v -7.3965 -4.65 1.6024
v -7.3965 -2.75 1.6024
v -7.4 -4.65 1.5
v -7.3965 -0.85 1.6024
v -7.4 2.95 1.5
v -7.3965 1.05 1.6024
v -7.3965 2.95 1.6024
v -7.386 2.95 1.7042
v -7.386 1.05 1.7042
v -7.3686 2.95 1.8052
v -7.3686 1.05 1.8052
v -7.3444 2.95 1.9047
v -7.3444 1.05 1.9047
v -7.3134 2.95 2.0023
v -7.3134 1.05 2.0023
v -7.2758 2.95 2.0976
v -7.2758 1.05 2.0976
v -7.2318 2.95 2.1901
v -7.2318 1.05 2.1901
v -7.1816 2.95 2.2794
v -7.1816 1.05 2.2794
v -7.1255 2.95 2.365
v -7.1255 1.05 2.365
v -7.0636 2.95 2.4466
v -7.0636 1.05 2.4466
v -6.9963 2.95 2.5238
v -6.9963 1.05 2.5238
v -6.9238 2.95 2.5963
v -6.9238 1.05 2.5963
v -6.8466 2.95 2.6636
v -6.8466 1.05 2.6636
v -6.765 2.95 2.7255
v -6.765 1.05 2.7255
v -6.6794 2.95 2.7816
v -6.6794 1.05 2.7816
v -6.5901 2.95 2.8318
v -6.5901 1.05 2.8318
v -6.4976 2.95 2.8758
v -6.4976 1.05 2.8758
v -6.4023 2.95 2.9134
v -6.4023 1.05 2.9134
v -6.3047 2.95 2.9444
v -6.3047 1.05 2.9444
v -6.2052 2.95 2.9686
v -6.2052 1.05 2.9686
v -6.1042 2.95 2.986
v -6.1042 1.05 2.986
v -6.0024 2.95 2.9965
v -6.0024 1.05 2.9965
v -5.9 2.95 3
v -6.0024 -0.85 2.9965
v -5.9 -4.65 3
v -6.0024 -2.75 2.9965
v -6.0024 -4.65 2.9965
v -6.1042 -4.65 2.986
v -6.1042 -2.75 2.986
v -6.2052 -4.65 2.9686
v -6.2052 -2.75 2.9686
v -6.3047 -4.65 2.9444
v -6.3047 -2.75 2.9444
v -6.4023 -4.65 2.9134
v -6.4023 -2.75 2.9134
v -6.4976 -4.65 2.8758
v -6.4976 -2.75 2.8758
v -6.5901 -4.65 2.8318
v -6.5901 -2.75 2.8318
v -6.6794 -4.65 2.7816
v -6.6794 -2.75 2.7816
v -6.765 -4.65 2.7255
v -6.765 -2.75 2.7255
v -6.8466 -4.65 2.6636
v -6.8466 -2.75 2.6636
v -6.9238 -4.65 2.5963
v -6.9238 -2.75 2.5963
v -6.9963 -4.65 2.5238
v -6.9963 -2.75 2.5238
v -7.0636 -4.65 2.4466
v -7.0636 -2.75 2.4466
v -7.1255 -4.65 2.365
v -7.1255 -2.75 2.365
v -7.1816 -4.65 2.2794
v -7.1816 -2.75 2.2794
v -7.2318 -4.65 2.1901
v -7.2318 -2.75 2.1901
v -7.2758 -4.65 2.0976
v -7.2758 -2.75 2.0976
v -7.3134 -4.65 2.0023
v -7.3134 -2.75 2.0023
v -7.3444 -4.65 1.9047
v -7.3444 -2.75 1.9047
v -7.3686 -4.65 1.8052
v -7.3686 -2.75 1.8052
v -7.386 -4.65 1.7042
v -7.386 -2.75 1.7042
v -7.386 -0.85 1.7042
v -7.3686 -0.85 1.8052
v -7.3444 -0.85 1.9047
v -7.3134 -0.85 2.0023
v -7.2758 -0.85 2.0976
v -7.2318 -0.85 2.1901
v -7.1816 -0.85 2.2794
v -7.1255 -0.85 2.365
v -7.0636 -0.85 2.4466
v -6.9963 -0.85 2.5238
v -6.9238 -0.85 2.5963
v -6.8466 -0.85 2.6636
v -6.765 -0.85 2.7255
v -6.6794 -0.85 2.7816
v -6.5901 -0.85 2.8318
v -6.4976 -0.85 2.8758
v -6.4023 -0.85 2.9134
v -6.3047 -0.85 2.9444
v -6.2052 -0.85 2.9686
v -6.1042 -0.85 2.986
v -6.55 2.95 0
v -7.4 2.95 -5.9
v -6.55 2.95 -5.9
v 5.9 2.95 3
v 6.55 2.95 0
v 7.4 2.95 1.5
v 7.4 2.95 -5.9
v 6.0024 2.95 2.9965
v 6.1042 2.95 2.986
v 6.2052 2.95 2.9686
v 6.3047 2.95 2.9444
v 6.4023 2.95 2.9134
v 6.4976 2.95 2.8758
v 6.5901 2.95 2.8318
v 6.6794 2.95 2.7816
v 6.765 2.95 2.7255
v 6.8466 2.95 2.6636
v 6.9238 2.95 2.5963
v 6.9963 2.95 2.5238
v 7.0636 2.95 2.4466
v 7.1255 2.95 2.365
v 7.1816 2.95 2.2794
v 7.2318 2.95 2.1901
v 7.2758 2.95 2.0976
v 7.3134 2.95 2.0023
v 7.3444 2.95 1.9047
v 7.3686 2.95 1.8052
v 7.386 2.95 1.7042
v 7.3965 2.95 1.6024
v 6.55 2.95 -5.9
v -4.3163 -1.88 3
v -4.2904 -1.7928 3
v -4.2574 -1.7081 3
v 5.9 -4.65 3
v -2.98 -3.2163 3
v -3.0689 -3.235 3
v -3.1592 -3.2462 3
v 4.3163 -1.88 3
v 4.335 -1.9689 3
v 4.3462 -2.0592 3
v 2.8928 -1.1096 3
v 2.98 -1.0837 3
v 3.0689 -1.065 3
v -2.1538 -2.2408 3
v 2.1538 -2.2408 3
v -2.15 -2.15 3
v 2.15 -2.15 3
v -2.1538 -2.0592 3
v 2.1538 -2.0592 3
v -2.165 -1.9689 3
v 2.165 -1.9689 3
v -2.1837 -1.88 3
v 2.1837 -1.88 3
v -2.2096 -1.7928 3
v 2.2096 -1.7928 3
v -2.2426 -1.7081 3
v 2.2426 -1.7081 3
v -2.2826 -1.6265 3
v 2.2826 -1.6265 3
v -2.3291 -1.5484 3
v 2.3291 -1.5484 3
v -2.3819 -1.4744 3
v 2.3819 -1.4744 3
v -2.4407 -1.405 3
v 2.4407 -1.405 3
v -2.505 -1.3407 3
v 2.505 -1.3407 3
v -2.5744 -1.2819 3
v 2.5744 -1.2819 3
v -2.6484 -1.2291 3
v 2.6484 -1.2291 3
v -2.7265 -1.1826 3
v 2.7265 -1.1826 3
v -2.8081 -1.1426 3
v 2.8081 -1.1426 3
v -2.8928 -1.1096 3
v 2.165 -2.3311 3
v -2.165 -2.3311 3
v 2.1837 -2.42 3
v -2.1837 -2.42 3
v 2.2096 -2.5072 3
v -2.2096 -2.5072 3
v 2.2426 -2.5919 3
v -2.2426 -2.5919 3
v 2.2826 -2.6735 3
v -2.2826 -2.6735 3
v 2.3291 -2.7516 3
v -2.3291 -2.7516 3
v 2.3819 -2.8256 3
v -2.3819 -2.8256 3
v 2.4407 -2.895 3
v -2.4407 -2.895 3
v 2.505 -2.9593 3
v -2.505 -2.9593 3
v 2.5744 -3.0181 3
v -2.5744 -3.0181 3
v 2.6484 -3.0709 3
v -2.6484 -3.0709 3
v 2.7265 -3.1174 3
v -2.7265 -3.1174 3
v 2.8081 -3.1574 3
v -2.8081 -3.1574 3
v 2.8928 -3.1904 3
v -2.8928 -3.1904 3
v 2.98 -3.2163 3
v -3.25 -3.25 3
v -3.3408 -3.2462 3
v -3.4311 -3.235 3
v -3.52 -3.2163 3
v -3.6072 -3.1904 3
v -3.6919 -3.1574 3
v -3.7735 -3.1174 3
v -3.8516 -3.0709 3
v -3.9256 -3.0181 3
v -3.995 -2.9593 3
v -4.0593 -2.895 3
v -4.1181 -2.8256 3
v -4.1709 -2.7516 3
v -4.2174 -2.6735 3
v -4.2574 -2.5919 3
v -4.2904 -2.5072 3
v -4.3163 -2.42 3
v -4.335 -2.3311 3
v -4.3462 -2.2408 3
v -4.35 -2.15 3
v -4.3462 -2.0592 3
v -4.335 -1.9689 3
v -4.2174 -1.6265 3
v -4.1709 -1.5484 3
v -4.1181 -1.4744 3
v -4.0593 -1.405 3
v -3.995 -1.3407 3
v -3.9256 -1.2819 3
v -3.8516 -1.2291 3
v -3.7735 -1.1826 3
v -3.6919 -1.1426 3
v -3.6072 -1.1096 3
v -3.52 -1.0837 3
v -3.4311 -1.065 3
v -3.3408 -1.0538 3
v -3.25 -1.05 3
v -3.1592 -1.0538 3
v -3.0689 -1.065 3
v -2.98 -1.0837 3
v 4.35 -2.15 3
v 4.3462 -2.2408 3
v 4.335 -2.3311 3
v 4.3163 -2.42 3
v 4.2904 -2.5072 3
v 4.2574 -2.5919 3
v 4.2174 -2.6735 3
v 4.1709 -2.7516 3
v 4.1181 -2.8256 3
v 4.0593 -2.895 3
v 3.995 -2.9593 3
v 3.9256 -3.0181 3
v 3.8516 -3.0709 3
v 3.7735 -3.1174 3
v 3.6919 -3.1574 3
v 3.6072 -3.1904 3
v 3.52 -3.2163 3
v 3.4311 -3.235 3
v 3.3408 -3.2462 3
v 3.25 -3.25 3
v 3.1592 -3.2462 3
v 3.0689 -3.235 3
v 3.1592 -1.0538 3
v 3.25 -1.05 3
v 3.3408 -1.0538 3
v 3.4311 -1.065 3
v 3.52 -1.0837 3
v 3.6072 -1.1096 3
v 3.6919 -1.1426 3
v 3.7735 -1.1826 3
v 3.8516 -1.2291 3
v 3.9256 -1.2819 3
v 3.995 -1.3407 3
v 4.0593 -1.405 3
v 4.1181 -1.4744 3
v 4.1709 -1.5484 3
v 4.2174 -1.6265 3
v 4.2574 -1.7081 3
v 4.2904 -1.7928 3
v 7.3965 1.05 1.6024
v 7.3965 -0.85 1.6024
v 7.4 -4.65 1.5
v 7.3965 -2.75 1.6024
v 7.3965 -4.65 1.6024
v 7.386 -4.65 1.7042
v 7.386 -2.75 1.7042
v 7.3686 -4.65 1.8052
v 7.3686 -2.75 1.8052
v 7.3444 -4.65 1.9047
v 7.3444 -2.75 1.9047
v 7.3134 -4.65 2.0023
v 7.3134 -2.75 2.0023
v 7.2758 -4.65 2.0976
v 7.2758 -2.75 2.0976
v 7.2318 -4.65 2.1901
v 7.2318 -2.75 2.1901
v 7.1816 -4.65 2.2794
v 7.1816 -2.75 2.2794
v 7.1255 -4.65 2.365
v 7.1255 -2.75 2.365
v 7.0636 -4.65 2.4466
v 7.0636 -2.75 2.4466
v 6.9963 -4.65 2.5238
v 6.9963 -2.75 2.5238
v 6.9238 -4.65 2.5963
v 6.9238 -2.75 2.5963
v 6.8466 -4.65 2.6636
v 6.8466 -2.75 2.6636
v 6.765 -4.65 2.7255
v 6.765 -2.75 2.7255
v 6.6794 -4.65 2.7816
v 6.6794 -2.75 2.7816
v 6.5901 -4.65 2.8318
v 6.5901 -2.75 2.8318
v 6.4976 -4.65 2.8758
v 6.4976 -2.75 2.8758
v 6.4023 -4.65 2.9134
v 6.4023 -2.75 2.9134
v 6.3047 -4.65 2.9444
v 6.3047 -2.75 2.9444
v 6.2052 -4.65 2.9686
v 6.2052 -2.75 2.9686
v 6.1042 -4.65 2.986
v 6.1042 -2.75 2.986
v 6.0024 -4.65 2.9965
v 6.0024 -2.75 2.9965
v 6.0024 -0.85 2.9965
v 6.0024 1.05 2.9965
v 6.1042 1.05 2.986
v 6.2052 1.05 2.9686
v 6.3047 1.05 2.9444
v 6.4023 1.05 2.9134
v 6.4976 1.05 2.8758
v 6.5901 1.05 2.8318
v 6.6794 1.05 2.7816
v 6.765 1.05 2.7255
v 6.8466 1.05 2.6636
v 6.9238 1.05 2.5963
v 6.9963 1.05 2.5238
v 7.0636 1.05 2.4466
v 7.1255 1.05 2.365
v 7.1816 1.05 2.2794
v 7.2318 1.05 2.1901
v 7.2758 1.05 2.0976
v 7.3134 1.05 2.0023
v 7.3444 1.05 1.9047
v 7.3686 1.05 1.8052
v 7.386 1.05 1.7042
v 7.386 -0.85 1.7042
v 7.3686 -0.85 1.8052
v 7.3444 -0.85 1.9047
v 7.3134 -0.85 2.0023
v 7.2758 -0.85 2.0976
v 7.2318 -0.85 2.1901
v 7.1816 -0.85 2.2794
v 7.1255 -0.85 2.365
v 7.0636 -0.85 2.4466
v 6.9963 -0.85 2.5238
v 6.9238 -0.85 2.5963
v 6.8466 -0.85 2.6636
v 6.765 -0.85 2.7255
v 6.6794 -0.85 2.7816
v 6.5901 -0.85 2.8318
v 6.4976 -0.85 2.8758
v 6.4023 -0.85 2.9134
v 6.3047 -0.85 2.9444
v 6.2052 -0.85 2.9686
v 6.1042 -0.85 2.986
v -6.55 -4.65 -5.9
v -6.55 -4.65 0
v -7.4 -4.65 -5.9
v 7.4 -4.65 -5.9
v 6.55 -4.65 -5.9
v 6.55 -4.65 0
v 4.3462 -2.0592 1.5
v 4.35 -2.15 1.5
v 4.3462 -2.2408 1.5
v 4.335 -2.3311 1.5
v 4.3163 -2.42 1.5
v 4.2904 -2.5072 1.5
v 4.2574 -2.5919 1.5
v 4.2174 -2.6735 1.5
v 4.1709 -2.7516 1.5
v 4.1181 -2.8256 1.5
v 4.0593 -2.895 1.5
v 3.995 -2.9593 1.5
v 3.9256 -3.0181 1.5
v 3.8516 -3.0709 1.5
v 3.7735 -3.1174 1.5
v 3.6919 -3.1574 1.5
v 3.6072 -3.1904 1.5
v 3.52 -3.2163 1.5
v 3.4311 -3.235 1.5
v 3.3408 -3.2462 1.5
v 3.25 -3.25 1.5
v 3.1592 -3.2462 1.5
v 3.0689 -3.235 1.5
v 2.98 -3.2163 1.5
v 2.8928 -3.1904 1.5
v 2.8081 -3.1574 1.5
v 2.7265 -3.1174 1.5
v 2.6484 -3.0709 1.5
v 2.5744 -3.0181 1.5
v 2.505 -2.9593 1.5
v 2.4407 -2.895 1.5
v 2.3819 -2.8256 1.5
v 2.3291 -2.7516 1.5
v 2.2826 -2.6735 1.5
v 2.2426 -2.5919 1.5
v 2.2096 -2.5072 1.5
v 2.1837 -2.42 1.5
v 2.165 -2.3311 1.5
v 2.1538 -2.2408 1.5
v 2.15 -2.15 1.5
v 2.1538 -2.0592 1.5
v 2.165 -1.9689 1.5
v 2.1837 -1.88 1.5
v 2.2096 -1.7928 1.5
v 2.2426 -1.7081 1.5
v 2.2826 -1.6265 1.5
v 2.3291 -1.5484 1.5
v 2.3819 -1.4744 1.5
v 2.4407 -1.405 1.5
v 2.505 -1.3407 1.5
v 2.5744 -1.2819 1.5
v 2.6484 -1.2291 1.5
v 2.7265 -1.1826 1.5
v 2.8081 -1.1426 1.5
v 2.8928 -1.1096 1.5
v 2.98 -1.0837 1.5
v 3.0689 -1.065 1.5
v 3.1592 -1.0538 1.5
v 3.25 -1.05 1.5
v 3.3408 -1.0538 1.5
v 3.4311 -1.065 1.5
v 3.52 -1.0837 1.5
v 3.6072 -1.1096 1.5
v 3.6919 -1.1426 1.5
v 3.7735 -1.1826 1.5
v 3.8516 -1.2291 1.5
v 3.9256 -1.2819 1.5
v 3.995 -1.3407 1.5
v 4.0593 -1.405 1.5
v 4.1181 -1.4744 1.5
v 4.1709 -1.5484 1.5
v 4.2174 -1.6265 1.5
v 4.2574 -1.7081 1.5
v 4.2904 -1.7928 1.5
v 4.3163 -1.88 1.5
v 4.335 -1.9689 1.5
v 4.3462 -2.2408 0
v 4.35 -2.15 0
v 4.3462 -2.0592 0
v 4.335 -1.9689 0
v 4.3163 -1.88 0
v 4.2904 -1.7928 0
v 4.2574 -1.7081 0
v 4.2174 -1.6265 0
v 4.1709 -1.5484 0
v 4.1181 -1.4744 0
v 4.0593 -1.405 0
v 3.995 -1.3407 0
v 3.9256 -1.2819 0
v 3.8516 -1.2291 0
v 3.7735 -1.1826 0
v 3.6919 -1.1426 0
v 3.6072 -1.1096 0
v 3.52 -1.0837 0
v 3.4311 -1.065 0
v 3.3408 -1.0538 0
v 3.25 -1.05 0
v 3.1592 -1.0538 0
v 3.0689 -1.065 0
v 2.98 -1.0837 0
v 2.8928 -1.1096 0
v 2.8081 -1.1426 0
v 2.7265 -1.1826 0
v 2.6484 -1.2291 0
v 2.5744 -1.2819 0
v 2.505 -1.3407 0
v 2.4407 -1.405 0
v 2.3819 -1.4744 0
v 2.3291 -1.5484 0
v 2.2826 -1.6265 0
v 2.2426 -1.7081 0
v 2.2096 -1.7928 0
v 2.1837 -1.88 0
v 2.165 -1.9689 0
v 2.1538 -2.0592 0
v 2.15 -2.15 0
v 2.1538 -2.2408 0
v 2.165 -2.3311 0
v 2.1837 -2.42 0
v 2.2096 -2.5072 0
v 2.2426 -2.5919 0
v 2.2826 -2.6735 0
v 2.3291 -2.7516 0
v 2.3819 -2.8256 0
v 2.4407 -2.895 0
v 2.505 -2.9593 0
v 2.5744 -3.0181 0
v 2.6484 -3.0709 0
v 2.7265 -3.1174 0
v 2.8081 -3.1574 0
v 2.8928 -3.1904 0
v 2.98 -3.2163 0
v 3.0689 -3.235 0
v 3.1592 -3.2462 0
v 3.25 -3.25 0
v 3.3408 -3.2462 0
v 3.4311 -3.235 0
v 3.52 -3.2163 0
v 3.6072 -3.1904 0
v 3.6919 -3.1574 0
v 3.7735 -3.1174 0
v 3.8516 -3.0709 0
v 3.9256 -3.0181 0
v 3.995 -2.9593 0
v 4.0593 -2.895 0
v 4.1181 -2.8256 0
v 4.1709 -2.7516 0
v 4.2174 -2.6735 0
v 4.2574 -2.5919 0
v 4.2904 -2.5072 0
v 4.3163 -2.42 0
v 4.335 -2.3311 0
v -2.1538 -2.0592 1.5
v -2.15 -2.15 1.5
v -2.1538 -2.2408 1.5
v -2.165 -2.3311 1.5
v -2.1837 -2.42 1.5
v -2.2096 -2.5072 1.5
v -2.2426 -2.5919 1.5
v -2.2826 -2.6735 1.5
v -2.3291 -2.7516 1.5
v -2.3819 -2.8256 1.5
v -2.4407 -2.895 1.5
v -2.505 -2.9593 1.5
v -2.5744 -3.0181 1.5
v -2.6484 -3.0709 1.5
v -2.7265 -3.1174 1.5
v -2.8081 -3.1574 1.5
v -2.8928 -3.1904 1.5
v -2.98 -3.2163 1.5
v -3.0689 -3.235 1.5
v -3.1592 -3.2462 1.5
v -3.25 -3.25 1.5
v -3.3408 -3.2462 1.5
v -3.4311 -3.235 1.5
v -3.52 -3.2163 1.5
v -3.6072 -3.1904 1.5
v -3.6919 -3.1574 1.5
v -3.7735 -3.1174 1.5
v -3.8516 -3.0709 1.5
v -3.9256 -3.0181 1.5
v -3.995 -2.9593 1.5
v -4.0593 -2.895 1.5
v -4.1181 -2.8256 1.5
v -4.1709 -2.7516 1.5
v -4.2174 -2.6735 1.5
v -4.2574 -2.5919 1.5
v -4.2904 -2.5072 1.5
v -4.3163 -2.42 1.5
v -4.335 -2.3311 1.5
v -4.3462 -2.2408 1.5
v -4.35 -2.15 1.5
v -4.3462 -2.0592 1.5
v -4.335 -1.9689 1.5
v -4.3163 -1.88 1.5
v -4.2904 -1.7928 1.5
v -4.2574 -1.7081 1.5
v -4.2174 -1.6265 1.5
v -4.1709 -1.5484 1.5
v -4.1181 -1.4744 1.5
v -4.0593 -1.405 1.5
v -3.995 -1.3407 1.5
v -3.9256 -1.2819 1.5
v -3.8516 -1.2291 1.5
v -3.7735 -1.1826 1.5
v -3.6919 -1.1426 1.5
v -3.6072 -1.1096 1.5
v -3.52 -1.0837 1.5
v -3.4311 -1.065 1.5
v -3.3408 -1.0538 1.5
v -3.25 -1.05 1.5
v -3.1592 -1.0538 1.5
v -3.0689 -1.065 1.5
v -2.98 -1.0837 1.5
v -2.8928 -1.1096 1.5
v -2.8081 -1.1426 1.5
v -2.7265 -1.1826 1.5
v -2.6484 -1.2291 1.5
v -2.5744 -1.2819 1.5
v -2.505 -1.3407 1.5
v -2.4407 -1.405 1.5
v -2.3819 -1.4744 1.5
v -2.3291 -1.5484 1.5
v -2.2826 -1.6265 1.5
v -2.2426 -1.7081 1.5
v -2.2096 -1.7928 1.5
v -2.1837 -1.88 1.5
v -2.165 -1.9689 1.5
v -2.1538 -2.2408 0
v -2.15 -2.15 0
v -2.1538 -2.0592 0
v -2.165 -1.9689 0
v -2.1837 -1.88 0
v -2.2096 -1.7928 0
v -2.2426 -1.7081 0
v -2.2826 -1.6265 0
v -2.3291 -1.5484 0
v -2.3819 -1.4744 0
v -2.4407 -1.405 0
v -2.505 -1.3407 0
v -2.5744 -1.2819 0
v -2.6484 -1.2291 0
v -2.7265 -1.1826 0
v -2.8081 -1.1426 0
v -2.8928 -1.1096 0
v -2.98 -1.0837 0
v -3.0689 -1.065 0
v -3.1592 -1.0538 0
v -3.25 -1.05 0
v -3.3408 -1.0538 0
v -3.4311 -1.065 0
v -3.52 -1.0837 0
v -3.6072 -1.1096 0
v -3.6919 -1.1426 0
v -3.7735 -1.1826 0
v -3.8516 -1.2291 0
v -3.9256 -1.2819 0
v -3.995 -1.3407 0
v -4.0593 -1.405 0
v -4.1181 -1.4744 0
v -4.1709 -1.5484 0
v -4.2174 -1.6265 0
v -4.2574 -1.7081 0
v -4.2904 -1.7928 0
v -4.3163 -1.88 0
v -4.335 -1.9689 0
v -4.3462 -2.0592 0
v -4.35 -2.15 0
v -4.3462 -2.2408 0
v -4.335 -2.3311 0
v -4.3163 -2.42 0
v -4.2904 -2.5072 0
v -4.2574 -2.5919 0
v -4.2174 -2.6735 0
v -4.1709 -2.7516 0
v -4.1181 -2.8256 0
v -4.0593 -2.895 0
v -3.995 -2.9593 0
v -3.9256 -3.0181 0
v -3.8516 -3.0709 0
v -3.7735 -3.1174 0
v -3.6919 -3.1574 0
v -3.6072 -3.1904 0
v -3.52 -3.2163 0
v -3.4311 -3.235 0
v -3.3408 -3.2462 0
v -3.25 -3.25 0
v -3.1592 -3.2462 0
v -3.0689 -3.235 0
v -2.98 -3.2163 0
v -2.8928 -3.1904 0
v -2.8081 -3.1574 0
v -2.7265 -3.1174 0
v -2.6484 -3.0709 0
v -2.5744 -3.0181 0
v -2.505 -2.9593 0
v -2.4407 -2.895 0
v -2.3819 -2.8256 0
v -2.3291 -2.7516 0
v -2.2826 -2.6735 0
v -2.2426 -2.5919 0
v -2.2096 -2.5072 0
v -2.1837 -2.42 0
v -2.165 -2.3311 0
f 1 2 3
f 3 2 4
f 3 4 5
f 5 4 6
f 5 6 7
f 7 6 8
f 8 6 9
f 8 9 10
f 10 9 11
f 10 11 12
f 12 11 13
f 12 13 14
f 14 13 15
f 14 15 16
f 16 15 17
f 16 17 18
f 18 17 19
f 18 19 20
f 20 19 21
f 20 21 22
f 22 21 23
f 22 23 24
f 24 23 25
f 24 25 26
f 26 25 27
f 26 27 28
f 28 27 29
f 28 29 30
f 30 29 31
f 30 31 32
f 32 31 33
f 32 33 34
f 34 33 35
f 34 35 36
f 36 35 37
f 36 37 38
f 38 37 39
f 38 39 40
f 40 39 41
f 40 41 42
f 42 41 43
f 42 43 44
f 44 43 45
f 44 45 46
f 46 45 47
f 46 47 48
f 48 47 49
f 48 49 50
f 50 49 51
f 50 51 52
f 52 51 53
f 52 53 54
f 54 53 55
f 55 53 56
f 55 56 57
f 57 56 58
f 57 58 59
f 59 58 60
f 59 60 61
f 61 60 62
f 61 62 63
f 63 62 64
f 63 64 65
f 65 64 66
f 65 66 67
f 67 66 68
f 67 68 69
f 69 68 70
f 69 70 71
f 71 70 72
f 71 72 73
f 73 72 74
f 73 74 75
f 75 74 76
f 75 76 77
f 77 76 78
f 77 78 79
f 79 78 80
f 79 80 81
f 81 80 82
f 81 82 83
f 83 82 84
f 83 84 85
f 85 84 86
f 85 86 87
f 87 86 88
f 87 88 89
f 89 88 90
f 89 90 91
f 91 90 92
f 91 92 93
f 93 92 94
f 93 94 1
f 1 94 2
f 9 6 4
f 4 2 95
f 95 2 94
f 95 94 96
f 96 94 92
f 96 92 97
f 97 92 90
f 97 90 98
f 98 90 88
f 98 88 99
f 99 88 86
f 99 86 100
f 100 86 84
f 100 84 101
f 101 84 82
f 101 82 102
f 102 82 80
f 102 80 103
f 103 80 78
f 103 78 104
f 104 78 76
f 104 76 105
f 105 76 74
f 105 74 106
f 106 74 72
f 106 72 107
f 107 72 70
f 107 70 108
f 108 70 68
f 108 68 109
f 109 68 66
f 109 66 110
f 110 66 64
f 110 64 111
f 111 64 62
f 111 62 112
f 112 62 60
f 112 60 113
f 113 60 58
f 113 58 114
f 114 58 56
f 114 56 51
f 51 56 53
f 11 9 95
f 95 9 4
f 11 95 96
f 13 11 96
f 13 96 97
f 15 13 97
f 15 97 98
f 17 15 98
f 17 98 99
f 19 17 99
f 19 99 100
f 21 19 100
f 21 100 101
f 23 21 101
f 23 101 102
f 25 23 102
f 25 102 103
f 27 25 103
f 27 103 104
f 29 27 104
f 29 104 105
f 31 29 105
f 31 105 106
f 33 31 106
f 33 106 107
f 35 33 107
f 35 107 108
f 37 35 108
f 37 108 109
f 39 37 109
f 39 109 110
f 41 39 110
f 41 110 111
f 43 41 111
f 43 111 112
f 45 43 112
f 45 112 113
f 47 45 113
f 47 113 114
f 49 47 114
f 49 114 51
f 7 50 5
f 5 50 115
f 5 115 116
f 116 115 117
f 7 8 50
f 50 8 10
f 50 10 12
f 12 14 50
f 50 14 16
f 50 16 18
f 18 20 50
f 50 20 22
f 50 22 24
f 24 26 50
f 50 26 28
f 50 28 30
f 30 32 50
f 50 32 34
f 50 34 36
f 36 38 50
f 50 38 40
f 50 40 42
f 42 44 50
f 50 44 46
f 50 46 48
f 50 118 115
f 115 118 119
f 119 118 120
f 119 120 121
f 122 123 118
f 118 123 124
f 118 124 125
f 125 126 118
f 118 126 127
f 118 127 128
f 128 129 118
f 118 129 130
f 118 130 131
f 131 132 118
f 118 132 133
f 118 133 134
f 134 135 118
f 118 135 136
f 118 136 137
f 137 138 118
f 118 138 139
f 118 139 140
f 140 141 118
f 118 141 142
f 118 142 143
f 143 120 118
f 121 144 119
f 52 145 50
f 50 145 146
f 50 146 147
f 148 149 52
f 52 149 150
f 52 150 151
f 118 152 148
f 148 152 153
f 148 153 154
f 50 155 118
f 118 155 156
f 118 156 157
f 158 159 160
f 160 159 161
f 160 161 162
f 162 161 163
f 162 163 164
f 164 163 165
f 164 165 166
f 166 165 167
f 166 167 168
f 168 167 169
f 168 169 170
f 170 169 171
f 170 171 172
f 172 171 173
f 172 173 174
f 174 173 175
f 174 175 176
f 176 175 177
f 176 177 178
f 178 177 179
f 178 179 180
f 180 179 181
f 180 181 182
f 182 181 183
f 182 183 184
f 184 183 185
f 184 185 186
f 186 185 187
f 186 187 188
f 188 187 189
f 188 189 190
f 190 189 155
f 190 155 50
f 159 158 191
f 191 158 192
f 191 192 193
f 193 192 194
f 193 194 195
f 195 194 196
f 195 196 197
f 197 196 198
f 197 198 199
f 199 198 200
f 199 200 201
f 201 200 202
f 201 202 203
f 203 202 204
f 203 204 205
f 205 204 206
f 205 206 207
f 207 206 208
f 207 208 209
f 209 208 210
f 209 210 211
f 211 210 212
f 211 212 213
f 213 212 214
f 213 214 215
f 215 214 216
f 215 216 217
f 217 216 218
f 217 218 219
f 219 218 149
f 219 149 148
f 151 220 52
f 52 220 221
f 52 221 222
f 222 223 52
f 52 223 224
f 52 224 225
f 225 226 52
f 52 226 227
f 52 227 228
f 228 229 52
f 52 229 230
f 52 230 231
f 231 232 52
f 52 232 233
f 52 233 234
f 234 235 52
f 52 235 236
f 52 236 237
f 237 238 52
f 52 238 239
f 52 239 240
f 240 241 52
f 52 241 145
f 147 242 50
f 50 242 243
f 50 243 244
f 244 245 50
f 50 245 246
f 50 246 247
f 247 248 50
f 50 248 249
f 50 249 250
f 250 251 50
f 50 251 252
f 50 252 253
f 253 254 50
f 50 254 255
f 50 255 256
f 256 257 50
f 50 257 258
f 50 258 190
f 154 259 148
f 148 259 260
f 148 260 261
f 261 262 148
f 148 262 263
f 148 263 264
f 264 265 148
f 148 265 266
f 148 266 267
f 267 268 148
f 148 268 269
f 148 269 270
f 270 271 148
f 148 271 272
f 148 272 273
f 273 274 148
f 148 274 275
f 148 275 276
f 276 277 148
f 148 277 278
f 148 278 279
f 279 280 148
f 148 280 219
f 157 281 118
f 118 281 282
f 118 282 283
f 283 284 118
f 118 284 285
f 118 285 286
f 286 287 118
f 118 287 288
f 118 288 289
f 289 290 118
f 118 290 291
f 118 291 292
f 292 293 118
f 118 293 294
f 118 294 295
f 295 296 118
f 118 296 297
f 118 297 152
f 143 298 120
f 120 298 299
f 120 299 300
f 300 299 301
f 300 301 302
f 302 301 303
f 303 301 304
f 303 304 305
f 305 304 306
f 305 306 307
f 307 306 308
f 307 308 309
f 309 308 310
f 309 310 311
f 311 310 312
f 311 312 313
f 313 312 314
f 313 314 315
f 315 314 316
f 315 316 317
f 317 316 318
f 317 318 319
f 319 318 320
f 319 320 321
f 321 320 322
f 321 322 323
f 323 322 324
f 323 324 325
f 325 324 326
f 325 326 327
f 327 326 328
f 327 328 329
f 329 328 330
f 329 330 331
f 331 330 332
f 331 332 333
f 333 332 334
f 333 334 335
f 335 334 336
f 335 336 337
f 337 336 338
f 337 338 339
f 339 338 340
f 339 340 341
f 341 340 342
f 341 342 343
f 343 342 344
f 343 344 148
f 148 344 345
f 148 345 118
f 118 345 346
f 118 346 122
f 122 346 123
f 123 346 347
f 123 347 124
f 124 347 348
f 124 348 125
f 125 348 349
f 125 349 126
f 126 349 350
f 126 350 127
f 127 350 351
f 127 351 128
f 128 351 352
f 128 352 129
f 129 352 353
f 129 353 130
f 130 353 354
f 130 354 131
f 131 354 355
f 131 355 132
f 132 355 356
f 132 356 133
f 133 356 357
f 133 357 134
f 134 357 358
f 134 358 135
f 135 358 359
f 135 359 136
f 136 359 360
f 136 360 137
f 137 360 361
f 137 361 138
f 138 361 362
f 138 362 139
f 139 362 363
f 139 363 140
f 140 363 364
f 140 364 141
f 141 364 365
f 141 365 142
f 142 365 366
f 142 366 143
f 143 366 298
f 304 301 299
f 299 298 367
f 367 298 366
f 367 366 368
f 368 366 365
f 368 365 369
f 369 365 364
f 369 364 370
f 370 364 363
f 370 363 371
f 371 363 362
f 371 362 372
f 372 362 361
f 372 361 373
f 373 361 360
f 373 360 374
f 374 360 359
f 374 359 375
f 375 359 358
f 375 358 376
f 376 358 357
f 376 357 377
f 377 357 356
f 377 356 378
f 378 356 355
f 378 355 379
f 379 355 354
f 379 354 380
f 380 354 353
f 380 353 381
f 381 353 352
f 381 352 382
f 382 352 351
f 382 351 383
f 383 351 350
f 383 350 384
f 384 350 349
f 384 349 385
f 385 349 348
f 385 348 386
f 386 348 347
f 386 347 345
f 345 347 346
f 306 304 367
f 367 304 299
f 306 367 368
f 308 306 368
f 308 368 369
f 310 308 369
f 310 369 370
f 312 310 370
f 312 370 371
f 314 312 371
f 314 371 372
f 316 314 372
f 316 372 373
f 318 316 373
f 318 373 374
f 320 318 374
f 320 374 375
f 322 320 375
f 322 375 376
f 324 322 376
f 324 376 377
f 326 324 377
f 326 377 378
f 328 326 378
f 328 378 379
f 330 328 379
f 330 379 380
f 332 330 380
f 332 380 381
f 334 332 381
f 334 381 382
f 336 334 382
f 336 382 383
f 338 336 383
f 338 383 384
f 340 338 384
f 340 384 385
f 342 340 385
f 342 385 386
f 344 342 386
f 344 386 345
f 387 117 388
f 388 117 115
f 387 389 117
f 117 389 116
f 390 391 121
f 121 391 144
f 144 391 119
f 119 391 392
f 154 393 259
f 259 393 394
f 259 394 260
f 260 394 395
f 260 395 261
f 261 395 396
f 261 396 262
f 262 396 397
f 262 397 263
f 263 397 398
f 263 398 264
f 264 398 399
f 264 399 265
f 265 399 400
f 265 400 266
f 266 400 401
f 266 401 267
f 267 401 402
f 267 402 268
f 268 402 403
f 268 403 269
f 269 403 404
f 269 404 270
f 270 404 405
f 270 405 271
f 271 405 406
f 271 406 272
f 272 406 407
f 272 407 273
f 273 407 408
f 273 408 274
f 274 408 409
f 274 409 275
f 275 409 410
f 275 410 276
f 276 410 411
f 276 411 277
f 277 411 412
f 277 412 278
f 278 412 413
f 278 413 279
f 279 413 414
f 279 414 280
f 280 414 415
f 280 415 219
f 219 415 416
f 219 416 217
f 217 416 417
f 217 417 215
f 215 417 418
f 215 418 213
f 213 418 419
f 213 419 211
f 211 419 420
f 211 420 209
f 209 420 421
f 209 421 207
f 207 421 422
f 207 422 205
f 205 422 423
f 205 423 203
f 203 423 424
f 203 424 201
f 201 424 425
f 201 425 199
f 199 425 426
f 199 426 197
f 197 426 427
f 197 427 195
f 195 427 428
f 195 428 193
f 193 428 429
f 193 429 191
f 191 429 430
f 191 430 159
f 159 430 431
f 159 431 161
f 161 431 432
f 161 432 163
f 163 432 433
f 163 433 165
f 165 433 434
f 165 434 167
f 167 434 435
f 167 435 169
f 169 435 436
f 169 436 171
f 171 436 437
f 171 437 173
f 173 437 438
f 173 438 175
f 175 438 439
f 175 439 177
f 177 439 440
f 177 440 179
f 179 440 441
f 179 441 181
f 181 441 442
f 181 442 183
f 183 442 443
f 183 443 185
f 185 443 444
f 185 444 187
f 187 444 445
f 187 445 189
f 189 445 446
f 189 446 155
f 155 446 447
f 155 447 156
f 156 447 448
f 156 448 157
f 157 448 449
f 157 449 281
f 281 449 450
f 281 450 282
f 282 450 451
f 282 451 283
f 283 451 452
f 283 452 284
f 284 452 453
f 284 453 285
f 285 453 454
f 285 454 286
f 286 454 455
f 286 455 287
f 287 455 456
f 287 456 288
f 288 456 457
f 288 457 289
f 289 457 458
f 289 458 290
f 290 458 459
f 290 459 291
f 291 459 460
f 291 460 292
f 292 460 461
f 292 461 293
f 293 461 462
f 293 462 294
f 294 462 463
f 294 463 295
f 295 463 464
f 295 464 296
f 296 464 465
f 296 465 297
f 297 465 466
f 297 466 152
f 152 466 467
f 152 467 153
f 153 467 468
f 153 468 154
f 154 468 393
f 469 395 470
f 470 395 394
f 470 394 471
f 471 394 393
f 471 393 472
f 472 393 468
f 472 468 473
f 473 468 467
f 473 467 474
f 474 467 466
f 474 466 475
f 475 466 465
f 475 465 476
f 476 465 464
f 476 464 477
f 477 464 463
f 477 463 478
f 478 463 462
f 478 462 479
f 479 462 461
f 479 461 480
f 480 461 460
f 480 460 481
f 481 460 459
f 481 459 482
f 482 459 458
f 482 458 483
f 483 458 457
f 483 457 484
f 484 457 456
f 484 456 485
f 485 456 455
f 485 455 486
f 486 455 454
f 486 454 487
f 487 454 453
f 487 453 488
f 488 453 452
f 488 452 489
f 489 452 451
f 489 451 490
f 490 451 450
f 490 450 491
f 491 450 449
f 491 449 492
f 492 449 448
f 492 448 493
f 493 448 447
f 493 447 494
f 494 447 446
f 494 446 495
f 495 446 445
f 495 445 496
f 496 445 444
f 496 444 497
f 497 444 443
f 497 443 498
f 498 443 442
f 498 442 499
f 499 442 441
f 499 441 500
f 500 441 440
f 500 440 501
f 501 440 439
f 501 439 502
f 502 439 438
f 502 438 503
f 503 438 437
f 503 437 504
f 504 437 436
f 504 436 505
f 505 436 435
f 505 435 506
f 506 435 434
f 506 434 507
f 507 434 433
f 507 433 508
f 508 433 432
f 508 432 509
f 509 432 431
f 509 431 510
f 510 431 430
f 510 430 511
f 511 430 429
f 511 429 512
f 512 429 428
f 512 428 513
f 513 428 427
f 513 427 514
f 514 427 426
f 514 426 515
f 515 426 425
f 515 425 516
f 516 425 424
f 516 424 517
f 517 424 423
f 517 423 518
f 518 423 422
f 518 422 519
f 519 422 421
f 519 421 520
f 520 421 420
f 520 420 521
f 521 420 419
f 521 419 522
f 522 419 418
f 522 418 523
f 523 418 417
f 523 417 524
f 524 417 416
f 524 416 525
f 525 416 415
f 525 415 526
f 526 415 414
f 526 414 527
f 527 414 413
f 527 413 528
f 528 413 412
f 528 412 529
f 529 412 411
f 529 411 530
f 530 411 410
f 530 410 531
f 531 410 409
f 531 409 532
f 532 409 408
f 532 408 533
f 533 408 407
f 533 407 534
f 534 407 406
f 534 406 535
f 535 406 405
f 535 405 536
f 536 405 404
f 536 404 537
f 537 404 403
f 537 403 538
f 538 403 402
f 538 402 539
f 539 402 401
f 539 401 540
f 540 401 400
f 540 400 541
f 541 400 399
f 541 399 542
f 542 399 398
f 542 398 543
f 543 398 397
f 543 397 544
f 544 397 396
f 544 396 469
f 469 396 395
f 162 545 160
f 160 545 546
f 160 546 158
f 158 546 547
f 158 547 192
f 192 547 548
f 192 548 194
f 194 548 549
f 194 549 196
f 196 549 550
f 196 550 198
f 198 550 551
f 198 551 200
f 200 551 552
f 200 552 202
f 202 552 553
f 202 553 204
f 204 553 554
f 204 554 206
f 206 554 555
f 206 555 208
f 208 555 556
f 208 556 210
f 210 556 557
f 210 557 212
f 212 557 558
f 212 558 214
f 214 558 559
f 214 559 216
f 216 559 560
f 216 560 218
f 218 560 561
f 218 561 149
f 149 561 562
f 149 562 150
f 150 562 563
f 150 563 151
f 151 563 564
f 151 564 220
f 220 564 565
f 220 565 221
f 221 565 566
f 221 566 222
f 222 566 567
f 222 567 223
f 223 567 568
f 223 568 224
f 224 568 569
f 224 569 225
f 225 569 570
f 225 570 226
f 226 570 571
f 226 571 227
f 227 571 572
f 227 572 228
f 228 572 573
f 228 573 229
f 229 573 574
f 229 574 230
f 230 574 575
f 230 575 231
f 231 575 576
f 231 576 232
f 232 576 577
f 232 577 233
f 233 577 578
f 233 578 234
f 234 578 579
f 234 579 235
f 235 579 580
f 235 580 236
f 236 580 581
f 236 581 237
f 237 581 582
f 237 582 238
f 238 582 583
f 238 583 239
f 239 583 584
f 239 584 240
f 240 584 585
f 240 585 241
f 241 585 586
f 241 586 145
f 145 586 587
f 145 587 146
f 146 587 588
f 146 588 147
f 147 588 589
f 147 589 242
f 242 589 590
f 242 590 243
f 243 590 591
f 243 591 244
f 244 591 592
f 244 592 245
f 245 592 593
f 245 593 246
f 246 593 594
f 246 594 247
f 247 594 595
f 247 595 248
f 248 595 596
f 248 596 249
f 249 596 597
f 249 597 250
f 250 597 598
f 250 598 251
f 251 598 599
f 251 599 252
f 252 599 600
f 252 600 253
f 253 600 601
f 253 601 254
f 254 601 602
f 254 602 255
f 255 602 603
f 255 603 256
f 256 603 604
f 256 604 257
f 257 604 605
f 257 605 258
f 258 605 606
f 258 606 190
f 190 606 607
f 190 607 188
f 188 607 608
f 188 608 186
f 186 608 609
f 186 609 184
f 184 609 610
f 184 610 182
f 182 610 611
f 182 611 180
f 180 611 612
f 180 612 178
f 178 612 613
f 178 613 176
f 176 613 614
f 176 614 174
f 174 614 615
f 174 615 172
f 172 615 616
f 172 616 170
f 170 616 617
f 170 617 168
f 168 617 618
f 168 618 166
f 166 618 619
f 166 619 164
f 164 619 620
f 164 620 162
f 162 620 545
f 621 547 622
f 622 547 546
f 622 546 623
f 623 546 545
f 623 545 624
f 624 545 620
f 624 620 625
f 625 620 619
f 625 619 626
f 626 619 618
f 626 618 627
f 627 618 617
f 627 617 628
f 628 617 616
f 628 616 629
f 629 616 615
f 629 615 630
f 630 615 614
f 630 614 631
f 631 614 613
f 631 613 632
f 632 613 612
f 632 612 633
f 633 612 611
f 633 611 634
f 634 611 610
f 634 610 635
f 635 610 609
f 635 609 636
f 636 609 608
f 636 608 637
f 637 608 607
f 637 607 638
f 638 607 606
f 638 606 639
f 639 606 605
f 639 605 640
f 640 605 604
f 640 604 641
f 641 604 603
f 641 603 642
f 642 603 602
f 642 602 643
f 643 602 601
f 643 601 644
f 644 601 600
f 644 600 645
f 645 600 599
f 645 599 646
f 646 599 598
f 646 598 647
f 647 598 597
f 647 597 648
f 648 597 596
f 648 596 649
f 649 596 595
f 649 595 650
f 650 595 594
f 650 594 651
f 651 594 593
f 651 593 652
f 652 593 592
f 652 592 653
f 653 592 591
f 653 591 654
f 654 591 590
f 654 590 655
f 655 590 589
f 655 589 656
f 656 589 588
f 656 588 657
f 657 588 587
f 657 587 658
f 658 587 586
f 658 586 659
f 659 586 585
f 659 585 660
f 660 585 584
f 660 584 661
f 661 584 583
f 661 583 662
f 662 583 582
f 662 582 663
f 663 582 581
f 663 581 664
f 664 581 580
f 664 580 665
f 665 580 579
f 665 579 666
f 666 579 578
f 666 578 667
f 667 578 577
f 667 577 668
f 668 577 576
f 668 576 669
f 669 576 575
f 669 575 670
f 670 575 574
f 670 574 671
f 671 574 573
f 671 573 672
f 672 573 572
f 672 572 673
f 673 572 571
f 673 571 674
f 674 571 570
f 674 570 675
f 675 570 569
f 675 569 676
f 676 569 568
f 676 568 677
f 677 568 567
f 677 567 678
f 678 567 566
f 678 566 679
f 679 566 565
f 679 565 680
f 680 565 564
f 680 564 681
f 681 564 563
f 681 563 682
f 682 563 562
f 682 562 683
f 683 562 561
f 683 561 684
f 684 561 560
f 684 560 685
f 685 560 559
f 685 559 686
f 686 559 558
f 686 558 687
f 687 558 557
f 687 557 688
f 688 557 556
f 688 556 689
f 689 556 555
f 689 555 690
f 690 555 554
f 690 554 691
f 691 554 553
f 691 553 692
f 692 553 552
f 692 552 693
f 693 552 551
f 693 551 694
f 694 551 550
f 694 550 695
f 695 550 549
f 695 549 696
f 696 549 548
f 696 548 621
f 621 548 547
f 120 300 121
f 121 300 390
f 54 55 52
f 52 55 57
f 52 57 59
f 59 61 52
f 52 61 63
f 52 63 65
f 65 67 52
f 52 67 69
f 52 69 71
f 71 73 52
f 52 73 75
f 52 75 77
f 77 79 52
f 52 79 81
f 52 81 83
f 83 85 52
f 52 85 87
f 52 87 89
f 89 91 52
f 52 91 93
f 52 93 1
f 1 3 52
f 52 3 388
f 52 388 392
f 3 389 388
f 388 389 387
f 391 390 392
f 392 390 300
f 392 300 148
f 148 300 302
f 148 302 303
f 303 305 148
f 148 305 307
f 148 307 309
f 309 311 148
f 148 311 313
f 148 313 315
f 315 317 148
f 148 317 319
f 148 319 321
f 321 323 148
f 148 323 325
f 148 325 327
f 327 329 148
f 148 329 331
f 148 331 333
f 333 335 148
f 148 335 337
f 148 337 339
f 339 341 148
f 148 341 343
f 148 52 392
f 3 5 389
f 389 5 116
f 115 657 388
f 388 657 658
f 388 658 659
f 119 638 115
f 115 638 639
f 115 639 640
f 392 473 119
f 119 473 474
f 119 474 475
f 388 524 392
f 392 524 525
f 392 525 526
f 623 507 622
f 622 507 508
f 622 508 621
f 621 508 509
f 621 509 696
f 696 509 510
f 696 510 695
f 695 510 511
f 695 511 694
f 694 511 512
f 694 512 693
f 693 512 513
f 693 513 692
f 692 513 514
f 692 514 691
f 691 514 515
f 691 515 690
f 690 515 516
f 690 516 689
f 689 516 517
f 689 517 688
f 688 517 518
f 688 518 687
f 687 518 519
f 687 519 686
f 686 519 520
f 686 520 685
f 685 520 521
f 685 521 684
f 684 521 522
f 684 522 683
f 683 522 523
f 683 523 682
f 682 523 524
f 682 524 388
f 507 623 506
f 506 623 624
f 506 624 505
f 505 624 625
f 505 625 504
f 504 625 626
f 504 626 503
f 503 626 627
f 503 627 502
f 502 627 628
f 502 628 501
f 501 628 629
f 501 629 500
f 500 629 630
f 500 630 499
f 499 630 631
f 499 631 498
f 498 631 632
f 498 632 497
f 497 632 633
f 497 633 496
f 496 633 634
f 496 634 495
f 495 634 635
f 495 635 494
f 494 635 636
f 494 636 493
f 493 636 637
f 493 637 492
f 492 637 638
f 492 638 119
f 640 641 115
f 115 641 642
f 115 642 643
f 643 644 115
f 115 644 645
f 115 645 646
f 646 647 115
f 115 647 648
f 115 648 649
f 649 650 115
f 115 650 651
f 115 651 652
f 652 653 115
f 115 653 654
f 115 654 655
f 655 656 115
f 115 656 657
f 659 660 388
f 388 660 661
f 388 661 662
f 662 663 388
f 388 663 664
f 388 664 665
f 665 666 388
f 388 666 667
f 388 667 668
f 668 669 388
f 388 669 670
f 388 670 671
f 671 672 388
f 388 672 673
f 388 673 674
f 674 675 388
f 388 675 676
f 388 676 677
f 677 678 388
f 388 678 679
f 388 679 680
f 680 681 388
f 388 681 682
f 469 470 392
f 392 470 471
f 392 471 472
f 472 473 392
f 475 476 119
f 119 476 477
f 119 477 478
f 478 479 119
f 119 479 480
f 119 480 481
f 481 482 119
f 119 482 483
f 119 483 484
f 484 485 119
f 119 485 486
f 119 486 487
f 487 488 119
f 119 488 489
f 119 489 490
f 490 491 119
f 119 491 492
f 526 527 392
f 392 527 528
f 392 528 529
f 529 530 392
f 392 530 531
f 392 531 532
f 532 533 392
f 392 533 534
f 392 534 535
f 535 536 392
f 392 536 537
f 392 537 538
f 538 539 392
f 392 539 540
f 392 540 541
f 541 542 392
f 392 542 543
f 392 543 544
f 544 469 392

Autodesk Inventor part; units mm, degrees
ref_plane "YZ Plane" through (0, 0, 0) normal (1, 0, 0) x (0, 1, 0)
ref_plane "XZ Plane" through (0, 0, 0) normal (0, 1, 0) x (-1, 0, 0)
sketch "Sketch1" plane through (0, 0, 0) normal (0, 0, 1) x (1, 0, 0)
  circle A0 centre (-3.25, -2.15) radius 1 projected
  circle A1 centre (3.25, -2.15) radius 1 projected
  circle A2 centre (-3.25, -2.15) radius 1.1
  circle A3 centre (3.25, -2.15) radius 1.1
  line L0 (-6.45, -0.55) -> (-6.45, -2.95) projected
  line L1 (6.45, -2.95) -> (6.45, -0.55) projected
  line L2 (-7.5, 2.95) -> (-10.5, 2.95) projected
  line L3 (10.5, 2.95) -> (7.5, 2.95) projected
  line L4 (-7.5, 2.95) -> (7.5, 2.95) projected
  line L5 (-6.45, 2.95) -> (-6.45, -0.55) projected
  line L6 (6.45, -0.55) -> (6.45, 2.95) projected
  line L7 (7.5, 2.95) -> (7.5, -8.05) projected
  line L8 (-7.5, 2.95) -> (-7.5, -6.5437) projected
  line L9 (-7.5, 2.95) -> (7.5, 2.95)
  line L10 (7.5, 2.95) -> (7.5, -4.65)
  line L11 (7.5, -4.65) -> (-7.5, -4.65)
  line L12 (-7.5, -4.65) -> (-7.5, 2.95)
  line L13 (-7.4, -4.65) -> (-7.4, 2.95)
  line L14 (7.4, -4.65) -> (7.4, 2.95)
  point P0 (0, 0)
  point P1 (-7.4, 2.95)
  point P2 (7.4, 2.95)
  dimension "d0" = 0.1
  dimension "d1" = 0.1
  dimension "d2" = 7.6
  dimension "d3" = 0.1
  dimension "d4" = 0.1
extrude "Extrusion1" add sketch "Sketch1" along normal blind 3 contours L4 L14 L11 L13
sketch "Sketch2" plane through (0, 0, 0) normal (0, 0, -1) x (-1, 0, 0)
  line L0 (-6.45, -0.55) -> (-6.45, 2.95) projected
  line L1 (-7.4, -4.65) -> (-7.4, 2.95) projected
  line L2 (6.45, 2.95) -> (6.45, -0.55) projected
  line L3 (7.4, 2.95) -> (7.4, -4.65) projected
  line L4 (-6.55, -0.55) -> (-6.55, 2.95)
  line L5 (6.55, 2.95) -> (6.55, -0.55)
  line L6 (-7.4, 2.95) -> (7.4, 2.95) projected
  line L7 (7.4, -4.65) -> (-7.4, -4.65) projected
  line L8 (-7.4, 2.95) -> (-6.55, 2.95)
  line L9 (-6.55, 2.95) -> (-6.55, -4.65)
  line L10 (-6.55, -4.65) -> (-7.4, -4.65)
  line L11 (-7.4, -4.65) -> (-7.4, 2.95)
  line L12 (6.55, 2.95) -> (7.4, 2.95)
  line L13 (7.4, 2.95) -> (7.4, -4.65)
  line L14 (7.4, -4.65) -> (6.55, -4.65)
  line L15 (6.55, -4.65) -> (6.55, 2.95)
  point P0 (0, 0)
  point P1 (6.55, -0.55)
  dimension "d7" = 0.1
  dimension "d8" = 0.1
ref_plane "Work Plane1" through (-15.5277, -15.5154, -5.9) normal (0, 0, 1) x (1, 0, 0)
extrude "Extrusion2" add sketch "Sketch2" along normal up to surface (5.9 mm away) contours L1 L6 L4 L9 L7 | L15 L5 L6 L3 L7
fillet "Fillet1" radius 1.5 2 edges at (7.4, -0.85, 3) (-7.4, -0.85, 3)
properties part number "podkladka_switch"
